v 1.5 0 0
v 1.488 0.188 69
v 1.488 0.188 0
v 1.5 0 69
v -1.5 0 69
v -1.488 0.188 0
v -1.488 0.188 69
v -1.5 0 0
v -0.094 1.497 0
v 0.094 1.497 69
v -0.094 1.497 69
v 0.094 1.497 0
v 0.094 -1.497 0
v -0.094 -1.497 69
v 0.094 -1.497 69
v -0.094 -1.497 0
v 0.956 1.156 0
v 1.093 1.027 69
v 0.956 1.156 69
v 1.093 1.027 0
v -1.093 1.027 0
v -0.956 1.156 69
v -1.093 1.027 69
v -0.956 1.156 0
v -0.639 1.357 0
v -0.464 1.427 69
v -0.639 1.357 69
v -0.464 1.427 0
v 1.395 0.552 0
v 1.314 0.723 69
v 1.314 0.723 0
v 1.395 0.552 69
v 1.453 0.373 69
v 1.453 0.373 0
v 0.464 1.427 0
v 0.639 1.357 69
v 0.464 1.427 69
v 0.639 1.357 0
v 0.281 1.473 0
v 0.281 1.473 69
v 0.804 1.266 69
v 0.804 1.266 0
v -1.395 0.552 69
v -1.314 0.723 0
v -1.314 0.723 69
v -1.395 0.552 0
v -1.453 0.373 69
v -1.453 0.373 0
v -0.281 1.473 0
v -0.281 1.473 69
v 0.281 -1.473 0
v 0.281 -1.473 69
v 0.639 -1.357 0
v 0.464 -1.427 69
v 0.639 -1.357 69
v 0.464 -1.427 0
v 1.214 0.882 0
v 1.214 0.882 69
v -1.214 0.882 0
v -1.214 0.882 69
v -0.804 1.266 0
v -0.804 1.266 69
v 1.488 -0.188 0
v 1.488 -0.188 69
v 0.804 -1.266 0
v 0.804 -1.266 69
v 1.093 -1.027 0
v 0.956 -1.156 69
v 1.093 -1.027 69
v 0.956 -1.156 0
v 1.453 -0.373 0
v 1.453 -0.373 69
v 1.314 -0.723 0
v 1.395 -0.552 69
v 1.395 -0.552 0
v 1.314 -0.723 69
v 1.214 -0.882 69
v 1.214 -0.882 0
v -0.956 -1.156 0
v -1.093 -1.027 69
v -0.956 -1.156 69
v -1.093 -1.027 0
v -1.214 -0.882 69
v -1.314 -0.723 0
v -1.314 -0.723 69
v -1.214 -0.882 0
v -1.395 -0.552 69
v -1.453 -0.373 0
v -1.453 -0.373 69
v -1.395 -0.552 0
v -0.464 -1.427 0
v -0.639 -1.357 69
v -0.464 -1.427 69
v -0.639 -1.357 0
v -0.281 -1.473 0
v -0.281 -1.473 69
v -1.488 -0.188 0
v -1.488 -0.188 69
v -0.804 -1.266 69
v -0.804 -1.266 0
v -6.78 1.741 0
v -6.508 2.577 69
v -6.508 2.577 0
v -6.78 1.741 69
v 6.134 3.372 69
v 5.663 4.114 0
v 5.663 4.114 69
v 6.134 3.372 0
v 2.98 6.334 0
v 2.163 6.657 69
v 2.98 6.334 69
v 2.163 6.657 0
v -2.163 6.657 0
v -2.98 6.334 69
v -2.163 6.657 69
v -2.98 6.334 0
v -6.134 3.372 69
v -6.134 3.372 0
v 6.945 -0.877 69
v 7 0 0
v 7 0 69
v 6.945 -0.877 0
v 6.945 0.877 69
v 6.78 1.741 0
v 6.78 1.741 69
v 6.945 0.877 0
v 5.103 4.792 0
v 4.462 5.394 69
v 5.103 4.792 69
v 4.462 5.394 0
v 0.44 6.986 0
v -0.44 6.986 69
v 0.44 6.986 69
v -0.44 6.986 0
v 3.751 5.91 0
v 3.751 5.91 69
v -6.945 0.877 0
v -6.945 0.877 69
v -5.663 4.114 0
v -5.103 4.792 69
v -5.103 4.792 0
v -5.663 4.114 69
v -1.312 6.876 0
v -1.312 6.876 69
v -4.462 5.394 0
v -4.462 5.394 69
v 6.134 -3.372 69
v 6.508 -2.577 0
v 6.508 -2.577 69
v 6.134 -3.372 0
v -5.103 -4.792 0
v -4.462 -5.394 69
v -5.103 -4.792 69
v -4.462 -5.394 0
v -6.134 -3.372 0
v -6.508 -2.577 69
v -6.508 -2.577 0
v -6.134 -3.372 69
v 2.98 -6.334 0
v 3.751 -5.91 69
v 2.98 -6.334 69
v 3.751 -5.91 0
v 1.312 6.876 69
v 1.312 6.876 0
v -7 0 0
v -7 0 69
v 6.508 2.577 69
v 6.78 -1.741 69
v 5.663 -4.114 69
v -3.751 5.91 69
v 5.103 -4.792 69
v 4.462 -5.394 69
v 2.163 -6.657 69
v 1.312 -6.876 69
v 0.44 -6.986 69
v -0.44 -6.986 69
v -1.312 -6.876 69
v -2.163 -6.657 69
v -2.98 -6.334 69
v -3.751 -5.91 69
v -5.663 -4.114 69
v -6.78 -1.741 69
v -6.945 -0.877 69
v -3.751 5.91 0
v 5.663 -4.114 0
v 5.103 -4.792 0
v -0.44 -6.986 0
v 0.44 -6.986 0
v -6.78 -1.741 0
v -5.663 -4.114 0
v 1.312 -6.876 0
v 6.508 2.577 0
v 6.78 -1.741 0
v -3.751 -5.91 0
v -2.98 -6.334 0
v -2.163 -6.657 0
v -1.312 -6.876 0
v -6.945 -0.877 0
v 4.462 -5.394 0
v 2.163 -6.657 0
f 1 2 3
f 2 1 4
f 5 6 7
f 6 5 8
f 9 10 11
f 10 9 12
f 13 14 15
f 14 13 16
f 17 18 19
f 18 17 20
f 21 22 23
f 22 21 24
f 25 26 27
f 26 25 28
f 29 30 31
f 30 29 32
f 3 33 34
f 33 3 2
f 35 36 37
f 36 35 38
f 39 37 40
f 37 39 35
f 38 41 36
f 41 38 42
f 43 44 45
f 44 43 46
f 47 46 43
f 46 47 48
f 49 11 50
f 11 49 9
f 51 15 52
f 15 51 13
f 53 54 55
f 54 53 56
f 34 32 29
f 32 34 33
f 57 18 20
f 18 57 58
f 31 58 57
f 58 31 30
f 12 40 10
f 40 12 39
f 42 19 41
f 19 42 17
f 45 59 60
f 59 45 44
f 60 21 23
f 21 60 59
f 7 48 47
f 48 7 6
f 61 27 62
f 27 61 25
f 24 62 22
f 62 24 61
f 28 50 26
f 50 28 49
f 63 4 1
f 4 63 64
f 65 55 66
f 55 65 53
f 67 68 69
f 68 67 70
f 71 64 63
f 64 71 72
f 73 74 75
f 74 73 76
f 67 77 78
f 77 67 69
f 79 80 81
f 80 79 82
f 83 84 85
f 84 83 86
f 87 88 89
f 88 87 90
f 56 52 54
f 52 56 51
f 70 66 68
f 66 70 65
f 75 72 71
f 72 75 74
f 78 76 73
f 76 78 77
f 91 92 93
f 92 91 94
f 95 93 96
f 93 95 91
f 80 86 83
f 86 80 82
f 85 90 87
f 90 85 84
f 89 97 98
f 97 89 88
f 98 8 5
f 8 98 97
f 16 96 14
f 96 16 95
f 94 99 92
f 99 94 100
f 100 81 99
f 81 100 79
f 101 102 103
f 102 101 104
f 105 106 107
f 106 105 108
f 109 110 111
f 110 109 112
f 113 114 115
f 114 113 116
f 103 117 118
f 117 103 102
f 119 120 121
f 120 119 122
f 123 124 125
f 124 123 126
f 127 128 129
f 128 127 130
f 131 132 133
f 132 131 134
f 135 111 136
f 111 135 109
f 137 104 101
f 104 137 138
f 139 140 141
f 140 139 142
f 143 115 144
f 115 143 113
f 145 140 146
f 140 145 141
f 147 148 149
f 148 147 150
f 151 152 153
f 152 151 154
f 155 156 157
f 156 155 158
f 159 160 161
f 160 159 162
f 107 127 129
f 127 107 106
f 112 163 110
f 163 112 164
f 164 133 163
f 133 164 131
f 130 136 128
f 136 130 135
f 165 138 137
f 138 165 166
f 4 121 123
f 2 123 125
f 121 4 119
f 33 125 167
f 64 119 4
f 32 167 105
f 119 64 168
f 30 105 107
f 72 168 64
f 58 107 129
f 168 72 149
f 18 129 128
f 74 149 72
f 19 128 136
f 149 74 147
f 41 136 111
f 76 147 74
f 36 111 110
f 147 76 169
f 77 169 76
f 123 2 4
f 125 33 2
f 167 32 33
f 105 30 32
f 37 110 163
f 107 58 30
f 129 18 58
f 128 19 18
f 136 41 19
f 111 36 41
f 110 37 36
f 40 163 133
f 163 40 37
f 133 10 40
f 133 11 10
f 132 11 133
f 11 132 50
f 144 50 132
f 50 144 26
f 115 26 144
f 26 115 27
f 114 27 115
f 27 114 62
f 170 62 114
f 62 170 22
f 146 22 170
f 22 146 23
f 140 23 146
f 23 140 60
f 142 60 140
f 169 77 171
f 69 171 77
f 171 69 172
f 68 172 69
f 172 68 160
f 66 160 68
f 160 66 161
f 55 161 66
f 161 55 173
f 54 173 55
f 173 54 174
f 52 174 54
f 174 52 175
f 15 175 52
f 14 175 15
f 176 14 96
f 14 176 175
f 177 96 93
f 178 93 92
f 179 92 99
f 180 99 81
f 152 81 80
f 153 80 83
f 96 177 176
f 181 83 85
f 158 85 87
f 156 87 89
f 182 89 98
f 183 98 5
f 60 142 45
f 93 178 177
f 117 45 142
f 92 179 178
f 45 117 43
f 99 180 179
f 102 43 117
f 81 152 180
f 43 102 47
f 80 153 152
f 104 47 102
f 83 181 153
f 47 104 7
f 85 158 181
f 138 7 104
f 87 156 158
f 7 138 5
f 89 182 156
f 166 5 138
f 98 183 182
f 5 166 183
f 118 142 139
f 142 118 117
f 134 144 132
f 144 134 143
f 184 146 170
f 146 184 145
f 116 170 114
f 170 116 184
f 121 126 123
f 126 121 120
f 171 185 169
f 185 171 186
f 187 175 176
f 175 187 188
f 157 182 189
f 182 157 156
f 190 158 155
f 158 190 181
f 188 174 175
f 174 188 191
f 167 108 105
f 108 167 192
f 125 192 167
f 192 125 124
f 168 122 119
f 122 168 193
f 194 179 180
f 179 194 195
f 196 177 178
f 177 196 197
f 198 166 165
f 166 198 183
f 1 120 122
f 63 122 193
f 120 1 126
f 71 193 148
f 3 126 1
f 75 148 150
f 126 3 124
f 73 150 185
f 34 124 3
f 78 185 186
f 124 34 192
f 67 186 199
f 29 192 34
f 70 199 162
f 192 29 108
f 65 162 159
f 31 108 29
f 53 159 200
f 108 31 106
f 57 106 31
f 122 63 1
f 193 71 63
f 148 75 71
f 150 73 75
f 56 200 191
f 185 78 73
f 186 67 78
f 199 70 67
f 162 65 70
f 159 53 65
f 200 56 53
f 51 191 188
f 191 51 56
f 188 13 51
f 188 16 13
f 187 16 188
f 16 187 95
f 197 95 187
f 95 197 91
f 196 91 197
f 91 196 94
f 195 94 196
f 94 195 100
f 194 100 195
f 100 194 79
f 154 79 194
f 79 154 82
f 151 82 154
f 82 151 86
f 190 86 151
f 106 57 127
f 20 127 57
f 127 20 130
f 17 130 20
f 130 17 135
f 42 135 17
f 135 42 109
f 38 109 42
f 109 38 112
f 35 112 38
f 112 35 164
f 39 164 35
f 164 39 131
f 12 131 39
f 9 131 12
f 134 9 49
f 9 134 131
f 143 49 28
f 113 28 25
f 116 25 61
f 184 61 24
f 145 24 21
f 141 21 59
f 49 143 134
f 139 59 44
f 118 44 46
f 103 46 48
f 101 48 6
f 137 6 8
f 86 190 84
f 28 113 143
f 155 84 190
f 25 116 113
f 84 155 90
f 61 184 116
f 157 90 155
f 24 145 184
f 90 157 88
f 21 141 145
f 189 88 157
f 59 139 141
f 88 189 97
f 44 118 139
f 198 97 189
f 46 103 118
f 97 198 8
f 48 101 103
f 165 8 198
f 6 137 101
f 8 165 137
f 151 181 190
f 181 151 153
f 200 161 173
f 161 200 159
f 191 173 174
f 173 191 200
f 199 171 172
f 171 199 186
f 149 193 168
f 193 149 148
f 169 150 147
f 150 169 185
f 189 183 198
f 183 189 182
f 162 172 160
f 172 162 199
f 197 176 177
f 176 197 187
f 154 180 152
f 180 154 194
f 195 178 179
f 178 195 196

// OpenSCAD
$fn = 50;


difference() {
	union() {
		cylinder(h = 69, r = 7.0000000000);
	}
	union() {
		translate(v = [0, 0, -100]) {
			cylinder(h = 200, r = 1.5000000000);
		}
		translate(v = [0, 0, -100]) {
			cylinder(h = 200, r = 1.5000000000);
		}
	}
}
